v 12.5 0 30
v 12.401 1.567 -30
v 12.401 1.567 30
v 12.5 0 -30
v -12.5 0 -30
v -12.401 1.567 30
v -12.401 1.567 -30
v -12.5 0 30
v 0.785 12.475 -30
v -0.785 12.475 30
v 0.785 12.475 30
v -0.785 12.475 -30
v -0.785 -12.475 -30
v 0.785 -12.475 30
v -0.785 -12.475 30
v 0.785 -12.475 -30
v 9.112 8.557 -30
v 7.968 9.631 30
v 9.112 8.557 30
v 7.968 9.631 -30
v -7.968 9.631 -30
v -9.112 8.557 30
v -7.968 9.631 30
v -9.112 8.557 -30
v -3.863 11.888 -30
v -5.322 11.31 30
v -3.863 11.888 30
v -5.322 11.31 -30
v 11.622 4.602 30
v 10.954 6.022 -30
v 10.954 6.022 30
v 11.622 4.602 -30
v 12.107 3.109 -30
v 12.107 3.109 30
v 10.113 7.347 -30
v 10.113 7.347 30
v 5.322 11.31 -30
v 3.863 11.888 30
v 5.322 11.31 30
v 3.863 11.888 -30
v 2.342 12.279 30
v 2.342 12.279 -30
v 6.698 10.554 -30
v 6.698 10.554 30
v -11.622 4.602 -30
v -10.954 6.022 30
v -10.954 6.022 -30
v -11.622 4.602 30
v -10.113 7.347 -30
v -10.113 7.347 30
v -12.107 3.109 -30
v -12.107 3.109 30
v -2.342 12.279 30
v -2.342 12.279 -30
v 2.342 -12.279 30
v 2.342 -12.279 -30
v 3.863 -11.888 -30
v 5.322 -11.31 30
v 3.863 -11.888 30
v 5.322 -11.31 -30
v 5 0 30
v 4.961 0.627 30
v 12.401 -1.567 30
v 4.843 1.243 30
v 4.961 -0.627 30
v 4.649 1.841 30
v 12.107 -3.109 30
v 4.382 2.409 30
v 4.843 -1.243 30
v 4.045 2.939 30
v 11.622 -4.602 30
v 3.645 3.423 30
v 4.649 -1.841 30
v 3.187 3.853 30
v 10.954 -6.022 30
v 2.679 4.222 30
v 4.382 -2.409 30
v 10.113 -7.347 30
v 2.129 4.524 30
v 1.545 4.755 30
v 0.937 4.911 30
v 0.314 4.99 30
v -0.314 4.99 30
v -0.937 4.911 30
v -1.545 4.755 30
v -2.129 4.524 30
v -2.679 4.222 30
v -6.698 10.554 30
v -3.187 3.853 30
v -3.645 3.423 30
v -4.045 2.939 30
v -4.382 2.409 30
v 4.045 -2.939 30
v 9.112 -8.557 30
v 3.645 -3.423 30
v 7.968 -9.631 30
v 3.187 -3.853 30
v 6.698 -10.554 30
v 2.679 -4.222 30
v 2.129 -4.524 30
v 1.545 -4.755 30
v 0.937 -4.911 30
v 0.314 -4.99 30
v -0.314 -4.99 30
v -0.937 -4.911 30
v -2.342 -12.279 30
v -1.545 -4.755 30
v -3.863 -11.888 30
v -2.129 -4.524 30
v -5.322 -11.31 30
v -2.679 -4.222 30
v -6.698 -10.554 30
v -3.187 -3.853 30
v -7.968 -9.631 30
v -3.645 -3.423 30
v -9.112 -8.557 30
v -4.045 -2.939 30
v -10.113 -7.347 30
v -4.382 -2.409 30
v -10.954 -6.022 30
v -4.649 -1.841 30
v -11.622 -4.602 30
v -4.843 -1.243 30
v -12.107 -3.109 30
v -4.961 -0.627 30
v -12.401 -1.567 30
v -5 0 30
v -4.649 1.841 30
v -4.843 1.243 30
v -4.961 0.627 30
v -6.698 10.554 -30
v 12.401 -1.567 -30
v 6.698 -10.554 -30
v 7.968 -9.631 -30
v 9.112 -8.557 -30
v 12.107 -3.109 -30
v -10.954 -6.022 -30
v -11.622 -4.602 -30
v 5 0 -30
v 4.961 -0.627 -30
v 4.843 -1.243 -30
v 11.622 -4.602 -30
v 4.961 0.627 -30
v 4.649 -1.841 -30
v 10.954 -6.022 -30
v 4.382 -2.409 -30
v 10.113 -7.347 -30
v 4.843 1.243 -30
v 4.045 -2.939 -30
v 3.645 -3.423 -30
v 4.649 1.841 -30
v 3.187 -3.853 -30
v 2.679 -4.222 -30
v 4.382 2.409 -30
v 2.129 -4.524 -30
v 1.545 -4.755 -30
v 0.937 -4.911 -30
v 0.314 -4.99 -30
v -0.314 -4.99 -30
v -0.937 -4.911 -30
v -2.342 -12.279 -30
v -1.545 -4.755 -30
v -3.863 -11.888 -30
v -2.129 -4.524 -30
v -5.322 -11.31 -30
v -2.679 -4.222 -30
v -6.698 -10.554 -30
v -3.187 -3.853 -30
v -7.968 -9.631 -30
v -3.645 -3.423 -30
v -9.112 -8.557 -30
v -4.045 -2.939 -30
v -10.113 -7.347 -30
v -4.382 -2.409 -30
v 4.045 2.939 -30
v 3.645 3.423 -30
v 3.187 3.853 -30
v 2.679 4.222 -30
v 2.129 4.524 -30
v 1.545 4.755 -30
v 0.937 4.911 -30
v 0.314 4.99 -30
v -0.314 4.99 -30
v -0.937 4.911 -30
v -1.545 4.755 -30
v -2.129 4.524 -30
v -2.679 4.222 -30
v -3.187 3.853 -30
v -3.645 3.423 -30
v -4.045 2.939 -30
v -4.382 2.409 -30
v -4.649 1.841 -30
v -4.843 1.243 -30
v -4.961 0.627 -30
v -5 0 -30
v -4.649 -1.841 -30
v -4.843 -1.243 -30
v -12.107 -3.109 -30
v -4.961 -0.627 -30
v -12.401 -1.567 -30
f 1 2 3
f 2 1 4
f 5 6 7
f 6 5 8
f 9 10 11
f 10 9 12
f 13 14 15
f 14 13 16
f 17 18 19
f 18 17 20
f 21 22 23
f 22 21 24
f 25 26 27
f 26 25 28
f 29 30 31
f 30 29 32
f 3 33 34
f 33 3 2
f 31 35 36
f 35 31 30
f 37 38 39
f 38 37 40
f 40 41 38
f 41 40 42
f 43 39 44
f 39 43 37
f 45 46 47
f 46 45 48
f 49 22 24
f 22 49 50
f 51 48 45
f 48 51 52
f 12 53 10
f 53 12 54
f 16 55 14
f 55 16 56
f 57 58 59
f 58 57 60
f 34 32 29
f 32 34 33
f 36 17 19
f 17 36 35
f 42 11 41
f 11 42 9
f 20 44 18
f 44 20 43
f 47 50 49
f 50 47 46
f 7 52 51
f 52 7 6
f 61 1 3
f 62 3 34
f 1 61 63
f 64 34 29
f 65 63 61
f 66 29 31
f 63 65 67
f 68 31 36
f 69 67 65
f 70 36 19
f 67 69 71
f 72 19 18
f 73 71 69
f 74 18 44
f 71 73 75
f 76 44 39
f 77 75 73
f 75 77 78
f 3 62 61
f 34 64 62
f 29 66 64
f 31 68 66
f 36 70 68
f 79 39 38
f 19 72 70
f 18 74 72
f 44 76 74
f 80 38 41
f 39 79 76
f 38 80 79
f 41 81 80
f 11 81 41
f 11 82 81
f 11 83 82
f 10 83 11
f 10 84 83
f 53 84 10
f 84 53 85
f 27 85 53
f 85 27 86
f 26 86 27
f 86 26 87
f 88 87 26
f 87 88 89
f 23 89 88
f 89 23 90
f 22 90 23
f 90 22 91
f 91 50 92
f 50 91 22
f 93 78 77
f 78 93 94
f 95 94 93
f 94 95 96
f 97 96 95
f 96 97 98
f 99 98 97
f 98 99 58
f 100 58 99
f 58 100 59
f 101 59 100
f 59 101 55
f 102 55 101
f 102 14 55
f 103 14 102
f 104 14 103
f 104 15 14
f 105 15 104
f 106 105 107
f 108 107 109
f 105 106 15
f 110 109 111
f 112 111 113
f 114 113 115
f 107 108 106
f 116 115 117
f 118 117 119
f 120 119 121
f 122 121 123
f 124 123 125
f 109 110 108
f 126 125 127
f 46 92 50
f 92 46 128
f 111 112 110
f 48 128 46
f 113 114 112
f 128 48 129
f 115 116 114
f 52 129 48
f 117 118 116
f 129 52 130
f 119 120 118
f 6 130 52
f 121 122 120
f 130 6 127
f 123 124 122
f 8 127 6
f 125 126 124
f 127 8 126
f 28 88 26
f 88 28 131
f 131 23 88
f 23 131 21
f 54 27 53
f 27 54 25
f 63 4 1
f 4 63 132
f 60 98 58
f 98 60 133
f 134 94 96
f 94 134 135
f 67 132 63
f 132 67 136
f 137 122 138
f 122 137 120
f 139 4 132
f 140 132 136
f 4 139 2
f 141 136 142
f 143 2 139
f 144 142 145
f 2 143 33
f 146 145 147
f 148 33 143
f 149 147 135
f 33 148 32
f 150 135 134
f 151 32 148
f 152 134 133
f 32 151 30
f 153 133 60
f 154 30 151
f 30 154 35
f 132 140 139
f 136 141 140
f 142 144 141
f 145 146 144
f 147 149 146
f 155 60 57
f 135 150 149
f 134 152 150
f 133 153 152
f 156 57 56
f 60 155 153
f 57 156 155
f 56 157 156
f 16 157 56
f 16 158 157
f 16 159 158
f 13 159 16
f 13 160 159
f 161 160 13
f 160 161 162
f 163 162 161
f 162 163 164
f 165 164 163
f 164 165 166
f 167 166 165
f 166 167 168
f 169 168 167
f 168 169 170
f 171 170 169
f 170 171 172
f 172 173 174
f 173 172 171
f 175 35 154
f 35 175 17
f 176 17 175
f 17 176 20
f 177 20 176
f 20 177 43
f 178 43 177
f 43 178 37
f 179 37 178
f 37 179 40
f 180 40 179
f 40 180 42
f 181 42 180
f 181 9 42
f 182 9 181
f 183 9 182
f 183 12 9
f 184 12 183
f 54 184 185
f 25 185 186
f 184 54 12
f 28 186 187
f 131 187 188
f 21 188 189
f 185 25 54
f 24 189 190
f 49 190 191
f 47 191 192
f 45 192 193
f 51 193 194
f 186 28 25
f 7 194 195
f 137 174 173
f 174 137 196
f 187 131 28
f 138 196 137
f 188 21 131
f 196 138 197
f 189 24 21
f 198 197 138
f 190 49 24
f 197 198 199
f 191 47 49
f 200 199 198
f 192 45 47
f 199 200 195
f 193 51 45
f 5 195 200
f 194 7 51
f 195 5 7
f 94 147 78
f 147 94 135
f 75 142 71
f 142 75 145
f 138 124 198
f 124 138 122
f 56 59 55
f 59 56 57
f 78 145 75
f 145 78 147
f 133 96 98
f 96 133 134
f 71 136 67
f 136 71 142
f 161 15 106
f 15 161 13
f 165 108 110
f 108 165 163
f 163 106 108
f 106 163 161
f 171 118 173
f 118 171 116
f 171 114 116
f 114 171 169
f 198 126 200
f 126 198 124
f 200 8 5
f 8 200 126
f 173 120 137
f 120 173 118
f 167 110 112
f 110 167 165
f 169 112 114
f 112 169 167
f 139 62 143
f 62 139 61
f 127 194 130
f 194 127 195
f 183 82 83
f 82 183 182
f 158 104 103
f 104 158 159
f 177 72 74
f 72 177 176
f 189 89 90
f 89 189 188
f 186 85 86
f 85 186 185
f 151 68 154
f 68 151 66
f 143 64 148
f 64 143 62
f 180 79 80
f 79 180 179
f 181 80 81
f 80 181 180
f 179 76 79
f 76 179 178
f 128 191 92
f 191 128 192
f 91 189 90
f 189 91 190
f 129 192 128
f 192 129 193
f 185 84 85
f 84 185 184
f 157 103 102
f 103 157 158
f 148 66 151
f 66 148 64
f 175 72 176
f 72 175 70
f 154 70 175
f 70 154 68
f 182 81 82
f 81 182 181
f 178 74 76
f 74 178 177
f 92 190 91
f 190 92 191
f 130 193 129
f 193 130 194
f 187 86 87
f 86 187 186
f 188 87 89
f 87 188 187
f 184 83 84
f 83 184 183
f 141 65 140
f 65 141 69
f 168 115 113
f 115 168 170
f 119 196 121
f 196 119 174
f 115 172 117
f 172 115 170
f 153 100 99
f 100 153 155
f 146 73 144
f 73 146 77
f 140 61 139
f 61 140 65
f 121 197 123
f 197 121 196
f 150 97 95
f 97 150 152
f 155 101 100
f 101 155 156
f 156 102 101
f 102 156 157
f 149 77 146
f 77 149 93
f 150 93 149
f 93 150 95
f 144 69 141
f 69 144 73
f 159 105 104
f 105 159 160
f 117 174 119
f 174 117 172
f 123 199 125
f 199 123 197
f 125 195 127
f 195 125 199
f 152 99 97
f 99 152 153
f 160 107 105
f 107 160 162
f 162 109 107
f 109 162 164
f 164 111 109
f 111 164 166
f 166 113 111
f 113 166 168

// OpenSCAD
$fn = 50;


difference() {
	union() {
		translate(v = [0, 0, -30.0000000000]) {
			cylinder(h = 60, r = 12.5000000000);
		}
	}
	union() {
		translate(v = [0, 0, -100.0000000000]) {
			cylinder(h = 200, r = 5);
		}
	}
}
